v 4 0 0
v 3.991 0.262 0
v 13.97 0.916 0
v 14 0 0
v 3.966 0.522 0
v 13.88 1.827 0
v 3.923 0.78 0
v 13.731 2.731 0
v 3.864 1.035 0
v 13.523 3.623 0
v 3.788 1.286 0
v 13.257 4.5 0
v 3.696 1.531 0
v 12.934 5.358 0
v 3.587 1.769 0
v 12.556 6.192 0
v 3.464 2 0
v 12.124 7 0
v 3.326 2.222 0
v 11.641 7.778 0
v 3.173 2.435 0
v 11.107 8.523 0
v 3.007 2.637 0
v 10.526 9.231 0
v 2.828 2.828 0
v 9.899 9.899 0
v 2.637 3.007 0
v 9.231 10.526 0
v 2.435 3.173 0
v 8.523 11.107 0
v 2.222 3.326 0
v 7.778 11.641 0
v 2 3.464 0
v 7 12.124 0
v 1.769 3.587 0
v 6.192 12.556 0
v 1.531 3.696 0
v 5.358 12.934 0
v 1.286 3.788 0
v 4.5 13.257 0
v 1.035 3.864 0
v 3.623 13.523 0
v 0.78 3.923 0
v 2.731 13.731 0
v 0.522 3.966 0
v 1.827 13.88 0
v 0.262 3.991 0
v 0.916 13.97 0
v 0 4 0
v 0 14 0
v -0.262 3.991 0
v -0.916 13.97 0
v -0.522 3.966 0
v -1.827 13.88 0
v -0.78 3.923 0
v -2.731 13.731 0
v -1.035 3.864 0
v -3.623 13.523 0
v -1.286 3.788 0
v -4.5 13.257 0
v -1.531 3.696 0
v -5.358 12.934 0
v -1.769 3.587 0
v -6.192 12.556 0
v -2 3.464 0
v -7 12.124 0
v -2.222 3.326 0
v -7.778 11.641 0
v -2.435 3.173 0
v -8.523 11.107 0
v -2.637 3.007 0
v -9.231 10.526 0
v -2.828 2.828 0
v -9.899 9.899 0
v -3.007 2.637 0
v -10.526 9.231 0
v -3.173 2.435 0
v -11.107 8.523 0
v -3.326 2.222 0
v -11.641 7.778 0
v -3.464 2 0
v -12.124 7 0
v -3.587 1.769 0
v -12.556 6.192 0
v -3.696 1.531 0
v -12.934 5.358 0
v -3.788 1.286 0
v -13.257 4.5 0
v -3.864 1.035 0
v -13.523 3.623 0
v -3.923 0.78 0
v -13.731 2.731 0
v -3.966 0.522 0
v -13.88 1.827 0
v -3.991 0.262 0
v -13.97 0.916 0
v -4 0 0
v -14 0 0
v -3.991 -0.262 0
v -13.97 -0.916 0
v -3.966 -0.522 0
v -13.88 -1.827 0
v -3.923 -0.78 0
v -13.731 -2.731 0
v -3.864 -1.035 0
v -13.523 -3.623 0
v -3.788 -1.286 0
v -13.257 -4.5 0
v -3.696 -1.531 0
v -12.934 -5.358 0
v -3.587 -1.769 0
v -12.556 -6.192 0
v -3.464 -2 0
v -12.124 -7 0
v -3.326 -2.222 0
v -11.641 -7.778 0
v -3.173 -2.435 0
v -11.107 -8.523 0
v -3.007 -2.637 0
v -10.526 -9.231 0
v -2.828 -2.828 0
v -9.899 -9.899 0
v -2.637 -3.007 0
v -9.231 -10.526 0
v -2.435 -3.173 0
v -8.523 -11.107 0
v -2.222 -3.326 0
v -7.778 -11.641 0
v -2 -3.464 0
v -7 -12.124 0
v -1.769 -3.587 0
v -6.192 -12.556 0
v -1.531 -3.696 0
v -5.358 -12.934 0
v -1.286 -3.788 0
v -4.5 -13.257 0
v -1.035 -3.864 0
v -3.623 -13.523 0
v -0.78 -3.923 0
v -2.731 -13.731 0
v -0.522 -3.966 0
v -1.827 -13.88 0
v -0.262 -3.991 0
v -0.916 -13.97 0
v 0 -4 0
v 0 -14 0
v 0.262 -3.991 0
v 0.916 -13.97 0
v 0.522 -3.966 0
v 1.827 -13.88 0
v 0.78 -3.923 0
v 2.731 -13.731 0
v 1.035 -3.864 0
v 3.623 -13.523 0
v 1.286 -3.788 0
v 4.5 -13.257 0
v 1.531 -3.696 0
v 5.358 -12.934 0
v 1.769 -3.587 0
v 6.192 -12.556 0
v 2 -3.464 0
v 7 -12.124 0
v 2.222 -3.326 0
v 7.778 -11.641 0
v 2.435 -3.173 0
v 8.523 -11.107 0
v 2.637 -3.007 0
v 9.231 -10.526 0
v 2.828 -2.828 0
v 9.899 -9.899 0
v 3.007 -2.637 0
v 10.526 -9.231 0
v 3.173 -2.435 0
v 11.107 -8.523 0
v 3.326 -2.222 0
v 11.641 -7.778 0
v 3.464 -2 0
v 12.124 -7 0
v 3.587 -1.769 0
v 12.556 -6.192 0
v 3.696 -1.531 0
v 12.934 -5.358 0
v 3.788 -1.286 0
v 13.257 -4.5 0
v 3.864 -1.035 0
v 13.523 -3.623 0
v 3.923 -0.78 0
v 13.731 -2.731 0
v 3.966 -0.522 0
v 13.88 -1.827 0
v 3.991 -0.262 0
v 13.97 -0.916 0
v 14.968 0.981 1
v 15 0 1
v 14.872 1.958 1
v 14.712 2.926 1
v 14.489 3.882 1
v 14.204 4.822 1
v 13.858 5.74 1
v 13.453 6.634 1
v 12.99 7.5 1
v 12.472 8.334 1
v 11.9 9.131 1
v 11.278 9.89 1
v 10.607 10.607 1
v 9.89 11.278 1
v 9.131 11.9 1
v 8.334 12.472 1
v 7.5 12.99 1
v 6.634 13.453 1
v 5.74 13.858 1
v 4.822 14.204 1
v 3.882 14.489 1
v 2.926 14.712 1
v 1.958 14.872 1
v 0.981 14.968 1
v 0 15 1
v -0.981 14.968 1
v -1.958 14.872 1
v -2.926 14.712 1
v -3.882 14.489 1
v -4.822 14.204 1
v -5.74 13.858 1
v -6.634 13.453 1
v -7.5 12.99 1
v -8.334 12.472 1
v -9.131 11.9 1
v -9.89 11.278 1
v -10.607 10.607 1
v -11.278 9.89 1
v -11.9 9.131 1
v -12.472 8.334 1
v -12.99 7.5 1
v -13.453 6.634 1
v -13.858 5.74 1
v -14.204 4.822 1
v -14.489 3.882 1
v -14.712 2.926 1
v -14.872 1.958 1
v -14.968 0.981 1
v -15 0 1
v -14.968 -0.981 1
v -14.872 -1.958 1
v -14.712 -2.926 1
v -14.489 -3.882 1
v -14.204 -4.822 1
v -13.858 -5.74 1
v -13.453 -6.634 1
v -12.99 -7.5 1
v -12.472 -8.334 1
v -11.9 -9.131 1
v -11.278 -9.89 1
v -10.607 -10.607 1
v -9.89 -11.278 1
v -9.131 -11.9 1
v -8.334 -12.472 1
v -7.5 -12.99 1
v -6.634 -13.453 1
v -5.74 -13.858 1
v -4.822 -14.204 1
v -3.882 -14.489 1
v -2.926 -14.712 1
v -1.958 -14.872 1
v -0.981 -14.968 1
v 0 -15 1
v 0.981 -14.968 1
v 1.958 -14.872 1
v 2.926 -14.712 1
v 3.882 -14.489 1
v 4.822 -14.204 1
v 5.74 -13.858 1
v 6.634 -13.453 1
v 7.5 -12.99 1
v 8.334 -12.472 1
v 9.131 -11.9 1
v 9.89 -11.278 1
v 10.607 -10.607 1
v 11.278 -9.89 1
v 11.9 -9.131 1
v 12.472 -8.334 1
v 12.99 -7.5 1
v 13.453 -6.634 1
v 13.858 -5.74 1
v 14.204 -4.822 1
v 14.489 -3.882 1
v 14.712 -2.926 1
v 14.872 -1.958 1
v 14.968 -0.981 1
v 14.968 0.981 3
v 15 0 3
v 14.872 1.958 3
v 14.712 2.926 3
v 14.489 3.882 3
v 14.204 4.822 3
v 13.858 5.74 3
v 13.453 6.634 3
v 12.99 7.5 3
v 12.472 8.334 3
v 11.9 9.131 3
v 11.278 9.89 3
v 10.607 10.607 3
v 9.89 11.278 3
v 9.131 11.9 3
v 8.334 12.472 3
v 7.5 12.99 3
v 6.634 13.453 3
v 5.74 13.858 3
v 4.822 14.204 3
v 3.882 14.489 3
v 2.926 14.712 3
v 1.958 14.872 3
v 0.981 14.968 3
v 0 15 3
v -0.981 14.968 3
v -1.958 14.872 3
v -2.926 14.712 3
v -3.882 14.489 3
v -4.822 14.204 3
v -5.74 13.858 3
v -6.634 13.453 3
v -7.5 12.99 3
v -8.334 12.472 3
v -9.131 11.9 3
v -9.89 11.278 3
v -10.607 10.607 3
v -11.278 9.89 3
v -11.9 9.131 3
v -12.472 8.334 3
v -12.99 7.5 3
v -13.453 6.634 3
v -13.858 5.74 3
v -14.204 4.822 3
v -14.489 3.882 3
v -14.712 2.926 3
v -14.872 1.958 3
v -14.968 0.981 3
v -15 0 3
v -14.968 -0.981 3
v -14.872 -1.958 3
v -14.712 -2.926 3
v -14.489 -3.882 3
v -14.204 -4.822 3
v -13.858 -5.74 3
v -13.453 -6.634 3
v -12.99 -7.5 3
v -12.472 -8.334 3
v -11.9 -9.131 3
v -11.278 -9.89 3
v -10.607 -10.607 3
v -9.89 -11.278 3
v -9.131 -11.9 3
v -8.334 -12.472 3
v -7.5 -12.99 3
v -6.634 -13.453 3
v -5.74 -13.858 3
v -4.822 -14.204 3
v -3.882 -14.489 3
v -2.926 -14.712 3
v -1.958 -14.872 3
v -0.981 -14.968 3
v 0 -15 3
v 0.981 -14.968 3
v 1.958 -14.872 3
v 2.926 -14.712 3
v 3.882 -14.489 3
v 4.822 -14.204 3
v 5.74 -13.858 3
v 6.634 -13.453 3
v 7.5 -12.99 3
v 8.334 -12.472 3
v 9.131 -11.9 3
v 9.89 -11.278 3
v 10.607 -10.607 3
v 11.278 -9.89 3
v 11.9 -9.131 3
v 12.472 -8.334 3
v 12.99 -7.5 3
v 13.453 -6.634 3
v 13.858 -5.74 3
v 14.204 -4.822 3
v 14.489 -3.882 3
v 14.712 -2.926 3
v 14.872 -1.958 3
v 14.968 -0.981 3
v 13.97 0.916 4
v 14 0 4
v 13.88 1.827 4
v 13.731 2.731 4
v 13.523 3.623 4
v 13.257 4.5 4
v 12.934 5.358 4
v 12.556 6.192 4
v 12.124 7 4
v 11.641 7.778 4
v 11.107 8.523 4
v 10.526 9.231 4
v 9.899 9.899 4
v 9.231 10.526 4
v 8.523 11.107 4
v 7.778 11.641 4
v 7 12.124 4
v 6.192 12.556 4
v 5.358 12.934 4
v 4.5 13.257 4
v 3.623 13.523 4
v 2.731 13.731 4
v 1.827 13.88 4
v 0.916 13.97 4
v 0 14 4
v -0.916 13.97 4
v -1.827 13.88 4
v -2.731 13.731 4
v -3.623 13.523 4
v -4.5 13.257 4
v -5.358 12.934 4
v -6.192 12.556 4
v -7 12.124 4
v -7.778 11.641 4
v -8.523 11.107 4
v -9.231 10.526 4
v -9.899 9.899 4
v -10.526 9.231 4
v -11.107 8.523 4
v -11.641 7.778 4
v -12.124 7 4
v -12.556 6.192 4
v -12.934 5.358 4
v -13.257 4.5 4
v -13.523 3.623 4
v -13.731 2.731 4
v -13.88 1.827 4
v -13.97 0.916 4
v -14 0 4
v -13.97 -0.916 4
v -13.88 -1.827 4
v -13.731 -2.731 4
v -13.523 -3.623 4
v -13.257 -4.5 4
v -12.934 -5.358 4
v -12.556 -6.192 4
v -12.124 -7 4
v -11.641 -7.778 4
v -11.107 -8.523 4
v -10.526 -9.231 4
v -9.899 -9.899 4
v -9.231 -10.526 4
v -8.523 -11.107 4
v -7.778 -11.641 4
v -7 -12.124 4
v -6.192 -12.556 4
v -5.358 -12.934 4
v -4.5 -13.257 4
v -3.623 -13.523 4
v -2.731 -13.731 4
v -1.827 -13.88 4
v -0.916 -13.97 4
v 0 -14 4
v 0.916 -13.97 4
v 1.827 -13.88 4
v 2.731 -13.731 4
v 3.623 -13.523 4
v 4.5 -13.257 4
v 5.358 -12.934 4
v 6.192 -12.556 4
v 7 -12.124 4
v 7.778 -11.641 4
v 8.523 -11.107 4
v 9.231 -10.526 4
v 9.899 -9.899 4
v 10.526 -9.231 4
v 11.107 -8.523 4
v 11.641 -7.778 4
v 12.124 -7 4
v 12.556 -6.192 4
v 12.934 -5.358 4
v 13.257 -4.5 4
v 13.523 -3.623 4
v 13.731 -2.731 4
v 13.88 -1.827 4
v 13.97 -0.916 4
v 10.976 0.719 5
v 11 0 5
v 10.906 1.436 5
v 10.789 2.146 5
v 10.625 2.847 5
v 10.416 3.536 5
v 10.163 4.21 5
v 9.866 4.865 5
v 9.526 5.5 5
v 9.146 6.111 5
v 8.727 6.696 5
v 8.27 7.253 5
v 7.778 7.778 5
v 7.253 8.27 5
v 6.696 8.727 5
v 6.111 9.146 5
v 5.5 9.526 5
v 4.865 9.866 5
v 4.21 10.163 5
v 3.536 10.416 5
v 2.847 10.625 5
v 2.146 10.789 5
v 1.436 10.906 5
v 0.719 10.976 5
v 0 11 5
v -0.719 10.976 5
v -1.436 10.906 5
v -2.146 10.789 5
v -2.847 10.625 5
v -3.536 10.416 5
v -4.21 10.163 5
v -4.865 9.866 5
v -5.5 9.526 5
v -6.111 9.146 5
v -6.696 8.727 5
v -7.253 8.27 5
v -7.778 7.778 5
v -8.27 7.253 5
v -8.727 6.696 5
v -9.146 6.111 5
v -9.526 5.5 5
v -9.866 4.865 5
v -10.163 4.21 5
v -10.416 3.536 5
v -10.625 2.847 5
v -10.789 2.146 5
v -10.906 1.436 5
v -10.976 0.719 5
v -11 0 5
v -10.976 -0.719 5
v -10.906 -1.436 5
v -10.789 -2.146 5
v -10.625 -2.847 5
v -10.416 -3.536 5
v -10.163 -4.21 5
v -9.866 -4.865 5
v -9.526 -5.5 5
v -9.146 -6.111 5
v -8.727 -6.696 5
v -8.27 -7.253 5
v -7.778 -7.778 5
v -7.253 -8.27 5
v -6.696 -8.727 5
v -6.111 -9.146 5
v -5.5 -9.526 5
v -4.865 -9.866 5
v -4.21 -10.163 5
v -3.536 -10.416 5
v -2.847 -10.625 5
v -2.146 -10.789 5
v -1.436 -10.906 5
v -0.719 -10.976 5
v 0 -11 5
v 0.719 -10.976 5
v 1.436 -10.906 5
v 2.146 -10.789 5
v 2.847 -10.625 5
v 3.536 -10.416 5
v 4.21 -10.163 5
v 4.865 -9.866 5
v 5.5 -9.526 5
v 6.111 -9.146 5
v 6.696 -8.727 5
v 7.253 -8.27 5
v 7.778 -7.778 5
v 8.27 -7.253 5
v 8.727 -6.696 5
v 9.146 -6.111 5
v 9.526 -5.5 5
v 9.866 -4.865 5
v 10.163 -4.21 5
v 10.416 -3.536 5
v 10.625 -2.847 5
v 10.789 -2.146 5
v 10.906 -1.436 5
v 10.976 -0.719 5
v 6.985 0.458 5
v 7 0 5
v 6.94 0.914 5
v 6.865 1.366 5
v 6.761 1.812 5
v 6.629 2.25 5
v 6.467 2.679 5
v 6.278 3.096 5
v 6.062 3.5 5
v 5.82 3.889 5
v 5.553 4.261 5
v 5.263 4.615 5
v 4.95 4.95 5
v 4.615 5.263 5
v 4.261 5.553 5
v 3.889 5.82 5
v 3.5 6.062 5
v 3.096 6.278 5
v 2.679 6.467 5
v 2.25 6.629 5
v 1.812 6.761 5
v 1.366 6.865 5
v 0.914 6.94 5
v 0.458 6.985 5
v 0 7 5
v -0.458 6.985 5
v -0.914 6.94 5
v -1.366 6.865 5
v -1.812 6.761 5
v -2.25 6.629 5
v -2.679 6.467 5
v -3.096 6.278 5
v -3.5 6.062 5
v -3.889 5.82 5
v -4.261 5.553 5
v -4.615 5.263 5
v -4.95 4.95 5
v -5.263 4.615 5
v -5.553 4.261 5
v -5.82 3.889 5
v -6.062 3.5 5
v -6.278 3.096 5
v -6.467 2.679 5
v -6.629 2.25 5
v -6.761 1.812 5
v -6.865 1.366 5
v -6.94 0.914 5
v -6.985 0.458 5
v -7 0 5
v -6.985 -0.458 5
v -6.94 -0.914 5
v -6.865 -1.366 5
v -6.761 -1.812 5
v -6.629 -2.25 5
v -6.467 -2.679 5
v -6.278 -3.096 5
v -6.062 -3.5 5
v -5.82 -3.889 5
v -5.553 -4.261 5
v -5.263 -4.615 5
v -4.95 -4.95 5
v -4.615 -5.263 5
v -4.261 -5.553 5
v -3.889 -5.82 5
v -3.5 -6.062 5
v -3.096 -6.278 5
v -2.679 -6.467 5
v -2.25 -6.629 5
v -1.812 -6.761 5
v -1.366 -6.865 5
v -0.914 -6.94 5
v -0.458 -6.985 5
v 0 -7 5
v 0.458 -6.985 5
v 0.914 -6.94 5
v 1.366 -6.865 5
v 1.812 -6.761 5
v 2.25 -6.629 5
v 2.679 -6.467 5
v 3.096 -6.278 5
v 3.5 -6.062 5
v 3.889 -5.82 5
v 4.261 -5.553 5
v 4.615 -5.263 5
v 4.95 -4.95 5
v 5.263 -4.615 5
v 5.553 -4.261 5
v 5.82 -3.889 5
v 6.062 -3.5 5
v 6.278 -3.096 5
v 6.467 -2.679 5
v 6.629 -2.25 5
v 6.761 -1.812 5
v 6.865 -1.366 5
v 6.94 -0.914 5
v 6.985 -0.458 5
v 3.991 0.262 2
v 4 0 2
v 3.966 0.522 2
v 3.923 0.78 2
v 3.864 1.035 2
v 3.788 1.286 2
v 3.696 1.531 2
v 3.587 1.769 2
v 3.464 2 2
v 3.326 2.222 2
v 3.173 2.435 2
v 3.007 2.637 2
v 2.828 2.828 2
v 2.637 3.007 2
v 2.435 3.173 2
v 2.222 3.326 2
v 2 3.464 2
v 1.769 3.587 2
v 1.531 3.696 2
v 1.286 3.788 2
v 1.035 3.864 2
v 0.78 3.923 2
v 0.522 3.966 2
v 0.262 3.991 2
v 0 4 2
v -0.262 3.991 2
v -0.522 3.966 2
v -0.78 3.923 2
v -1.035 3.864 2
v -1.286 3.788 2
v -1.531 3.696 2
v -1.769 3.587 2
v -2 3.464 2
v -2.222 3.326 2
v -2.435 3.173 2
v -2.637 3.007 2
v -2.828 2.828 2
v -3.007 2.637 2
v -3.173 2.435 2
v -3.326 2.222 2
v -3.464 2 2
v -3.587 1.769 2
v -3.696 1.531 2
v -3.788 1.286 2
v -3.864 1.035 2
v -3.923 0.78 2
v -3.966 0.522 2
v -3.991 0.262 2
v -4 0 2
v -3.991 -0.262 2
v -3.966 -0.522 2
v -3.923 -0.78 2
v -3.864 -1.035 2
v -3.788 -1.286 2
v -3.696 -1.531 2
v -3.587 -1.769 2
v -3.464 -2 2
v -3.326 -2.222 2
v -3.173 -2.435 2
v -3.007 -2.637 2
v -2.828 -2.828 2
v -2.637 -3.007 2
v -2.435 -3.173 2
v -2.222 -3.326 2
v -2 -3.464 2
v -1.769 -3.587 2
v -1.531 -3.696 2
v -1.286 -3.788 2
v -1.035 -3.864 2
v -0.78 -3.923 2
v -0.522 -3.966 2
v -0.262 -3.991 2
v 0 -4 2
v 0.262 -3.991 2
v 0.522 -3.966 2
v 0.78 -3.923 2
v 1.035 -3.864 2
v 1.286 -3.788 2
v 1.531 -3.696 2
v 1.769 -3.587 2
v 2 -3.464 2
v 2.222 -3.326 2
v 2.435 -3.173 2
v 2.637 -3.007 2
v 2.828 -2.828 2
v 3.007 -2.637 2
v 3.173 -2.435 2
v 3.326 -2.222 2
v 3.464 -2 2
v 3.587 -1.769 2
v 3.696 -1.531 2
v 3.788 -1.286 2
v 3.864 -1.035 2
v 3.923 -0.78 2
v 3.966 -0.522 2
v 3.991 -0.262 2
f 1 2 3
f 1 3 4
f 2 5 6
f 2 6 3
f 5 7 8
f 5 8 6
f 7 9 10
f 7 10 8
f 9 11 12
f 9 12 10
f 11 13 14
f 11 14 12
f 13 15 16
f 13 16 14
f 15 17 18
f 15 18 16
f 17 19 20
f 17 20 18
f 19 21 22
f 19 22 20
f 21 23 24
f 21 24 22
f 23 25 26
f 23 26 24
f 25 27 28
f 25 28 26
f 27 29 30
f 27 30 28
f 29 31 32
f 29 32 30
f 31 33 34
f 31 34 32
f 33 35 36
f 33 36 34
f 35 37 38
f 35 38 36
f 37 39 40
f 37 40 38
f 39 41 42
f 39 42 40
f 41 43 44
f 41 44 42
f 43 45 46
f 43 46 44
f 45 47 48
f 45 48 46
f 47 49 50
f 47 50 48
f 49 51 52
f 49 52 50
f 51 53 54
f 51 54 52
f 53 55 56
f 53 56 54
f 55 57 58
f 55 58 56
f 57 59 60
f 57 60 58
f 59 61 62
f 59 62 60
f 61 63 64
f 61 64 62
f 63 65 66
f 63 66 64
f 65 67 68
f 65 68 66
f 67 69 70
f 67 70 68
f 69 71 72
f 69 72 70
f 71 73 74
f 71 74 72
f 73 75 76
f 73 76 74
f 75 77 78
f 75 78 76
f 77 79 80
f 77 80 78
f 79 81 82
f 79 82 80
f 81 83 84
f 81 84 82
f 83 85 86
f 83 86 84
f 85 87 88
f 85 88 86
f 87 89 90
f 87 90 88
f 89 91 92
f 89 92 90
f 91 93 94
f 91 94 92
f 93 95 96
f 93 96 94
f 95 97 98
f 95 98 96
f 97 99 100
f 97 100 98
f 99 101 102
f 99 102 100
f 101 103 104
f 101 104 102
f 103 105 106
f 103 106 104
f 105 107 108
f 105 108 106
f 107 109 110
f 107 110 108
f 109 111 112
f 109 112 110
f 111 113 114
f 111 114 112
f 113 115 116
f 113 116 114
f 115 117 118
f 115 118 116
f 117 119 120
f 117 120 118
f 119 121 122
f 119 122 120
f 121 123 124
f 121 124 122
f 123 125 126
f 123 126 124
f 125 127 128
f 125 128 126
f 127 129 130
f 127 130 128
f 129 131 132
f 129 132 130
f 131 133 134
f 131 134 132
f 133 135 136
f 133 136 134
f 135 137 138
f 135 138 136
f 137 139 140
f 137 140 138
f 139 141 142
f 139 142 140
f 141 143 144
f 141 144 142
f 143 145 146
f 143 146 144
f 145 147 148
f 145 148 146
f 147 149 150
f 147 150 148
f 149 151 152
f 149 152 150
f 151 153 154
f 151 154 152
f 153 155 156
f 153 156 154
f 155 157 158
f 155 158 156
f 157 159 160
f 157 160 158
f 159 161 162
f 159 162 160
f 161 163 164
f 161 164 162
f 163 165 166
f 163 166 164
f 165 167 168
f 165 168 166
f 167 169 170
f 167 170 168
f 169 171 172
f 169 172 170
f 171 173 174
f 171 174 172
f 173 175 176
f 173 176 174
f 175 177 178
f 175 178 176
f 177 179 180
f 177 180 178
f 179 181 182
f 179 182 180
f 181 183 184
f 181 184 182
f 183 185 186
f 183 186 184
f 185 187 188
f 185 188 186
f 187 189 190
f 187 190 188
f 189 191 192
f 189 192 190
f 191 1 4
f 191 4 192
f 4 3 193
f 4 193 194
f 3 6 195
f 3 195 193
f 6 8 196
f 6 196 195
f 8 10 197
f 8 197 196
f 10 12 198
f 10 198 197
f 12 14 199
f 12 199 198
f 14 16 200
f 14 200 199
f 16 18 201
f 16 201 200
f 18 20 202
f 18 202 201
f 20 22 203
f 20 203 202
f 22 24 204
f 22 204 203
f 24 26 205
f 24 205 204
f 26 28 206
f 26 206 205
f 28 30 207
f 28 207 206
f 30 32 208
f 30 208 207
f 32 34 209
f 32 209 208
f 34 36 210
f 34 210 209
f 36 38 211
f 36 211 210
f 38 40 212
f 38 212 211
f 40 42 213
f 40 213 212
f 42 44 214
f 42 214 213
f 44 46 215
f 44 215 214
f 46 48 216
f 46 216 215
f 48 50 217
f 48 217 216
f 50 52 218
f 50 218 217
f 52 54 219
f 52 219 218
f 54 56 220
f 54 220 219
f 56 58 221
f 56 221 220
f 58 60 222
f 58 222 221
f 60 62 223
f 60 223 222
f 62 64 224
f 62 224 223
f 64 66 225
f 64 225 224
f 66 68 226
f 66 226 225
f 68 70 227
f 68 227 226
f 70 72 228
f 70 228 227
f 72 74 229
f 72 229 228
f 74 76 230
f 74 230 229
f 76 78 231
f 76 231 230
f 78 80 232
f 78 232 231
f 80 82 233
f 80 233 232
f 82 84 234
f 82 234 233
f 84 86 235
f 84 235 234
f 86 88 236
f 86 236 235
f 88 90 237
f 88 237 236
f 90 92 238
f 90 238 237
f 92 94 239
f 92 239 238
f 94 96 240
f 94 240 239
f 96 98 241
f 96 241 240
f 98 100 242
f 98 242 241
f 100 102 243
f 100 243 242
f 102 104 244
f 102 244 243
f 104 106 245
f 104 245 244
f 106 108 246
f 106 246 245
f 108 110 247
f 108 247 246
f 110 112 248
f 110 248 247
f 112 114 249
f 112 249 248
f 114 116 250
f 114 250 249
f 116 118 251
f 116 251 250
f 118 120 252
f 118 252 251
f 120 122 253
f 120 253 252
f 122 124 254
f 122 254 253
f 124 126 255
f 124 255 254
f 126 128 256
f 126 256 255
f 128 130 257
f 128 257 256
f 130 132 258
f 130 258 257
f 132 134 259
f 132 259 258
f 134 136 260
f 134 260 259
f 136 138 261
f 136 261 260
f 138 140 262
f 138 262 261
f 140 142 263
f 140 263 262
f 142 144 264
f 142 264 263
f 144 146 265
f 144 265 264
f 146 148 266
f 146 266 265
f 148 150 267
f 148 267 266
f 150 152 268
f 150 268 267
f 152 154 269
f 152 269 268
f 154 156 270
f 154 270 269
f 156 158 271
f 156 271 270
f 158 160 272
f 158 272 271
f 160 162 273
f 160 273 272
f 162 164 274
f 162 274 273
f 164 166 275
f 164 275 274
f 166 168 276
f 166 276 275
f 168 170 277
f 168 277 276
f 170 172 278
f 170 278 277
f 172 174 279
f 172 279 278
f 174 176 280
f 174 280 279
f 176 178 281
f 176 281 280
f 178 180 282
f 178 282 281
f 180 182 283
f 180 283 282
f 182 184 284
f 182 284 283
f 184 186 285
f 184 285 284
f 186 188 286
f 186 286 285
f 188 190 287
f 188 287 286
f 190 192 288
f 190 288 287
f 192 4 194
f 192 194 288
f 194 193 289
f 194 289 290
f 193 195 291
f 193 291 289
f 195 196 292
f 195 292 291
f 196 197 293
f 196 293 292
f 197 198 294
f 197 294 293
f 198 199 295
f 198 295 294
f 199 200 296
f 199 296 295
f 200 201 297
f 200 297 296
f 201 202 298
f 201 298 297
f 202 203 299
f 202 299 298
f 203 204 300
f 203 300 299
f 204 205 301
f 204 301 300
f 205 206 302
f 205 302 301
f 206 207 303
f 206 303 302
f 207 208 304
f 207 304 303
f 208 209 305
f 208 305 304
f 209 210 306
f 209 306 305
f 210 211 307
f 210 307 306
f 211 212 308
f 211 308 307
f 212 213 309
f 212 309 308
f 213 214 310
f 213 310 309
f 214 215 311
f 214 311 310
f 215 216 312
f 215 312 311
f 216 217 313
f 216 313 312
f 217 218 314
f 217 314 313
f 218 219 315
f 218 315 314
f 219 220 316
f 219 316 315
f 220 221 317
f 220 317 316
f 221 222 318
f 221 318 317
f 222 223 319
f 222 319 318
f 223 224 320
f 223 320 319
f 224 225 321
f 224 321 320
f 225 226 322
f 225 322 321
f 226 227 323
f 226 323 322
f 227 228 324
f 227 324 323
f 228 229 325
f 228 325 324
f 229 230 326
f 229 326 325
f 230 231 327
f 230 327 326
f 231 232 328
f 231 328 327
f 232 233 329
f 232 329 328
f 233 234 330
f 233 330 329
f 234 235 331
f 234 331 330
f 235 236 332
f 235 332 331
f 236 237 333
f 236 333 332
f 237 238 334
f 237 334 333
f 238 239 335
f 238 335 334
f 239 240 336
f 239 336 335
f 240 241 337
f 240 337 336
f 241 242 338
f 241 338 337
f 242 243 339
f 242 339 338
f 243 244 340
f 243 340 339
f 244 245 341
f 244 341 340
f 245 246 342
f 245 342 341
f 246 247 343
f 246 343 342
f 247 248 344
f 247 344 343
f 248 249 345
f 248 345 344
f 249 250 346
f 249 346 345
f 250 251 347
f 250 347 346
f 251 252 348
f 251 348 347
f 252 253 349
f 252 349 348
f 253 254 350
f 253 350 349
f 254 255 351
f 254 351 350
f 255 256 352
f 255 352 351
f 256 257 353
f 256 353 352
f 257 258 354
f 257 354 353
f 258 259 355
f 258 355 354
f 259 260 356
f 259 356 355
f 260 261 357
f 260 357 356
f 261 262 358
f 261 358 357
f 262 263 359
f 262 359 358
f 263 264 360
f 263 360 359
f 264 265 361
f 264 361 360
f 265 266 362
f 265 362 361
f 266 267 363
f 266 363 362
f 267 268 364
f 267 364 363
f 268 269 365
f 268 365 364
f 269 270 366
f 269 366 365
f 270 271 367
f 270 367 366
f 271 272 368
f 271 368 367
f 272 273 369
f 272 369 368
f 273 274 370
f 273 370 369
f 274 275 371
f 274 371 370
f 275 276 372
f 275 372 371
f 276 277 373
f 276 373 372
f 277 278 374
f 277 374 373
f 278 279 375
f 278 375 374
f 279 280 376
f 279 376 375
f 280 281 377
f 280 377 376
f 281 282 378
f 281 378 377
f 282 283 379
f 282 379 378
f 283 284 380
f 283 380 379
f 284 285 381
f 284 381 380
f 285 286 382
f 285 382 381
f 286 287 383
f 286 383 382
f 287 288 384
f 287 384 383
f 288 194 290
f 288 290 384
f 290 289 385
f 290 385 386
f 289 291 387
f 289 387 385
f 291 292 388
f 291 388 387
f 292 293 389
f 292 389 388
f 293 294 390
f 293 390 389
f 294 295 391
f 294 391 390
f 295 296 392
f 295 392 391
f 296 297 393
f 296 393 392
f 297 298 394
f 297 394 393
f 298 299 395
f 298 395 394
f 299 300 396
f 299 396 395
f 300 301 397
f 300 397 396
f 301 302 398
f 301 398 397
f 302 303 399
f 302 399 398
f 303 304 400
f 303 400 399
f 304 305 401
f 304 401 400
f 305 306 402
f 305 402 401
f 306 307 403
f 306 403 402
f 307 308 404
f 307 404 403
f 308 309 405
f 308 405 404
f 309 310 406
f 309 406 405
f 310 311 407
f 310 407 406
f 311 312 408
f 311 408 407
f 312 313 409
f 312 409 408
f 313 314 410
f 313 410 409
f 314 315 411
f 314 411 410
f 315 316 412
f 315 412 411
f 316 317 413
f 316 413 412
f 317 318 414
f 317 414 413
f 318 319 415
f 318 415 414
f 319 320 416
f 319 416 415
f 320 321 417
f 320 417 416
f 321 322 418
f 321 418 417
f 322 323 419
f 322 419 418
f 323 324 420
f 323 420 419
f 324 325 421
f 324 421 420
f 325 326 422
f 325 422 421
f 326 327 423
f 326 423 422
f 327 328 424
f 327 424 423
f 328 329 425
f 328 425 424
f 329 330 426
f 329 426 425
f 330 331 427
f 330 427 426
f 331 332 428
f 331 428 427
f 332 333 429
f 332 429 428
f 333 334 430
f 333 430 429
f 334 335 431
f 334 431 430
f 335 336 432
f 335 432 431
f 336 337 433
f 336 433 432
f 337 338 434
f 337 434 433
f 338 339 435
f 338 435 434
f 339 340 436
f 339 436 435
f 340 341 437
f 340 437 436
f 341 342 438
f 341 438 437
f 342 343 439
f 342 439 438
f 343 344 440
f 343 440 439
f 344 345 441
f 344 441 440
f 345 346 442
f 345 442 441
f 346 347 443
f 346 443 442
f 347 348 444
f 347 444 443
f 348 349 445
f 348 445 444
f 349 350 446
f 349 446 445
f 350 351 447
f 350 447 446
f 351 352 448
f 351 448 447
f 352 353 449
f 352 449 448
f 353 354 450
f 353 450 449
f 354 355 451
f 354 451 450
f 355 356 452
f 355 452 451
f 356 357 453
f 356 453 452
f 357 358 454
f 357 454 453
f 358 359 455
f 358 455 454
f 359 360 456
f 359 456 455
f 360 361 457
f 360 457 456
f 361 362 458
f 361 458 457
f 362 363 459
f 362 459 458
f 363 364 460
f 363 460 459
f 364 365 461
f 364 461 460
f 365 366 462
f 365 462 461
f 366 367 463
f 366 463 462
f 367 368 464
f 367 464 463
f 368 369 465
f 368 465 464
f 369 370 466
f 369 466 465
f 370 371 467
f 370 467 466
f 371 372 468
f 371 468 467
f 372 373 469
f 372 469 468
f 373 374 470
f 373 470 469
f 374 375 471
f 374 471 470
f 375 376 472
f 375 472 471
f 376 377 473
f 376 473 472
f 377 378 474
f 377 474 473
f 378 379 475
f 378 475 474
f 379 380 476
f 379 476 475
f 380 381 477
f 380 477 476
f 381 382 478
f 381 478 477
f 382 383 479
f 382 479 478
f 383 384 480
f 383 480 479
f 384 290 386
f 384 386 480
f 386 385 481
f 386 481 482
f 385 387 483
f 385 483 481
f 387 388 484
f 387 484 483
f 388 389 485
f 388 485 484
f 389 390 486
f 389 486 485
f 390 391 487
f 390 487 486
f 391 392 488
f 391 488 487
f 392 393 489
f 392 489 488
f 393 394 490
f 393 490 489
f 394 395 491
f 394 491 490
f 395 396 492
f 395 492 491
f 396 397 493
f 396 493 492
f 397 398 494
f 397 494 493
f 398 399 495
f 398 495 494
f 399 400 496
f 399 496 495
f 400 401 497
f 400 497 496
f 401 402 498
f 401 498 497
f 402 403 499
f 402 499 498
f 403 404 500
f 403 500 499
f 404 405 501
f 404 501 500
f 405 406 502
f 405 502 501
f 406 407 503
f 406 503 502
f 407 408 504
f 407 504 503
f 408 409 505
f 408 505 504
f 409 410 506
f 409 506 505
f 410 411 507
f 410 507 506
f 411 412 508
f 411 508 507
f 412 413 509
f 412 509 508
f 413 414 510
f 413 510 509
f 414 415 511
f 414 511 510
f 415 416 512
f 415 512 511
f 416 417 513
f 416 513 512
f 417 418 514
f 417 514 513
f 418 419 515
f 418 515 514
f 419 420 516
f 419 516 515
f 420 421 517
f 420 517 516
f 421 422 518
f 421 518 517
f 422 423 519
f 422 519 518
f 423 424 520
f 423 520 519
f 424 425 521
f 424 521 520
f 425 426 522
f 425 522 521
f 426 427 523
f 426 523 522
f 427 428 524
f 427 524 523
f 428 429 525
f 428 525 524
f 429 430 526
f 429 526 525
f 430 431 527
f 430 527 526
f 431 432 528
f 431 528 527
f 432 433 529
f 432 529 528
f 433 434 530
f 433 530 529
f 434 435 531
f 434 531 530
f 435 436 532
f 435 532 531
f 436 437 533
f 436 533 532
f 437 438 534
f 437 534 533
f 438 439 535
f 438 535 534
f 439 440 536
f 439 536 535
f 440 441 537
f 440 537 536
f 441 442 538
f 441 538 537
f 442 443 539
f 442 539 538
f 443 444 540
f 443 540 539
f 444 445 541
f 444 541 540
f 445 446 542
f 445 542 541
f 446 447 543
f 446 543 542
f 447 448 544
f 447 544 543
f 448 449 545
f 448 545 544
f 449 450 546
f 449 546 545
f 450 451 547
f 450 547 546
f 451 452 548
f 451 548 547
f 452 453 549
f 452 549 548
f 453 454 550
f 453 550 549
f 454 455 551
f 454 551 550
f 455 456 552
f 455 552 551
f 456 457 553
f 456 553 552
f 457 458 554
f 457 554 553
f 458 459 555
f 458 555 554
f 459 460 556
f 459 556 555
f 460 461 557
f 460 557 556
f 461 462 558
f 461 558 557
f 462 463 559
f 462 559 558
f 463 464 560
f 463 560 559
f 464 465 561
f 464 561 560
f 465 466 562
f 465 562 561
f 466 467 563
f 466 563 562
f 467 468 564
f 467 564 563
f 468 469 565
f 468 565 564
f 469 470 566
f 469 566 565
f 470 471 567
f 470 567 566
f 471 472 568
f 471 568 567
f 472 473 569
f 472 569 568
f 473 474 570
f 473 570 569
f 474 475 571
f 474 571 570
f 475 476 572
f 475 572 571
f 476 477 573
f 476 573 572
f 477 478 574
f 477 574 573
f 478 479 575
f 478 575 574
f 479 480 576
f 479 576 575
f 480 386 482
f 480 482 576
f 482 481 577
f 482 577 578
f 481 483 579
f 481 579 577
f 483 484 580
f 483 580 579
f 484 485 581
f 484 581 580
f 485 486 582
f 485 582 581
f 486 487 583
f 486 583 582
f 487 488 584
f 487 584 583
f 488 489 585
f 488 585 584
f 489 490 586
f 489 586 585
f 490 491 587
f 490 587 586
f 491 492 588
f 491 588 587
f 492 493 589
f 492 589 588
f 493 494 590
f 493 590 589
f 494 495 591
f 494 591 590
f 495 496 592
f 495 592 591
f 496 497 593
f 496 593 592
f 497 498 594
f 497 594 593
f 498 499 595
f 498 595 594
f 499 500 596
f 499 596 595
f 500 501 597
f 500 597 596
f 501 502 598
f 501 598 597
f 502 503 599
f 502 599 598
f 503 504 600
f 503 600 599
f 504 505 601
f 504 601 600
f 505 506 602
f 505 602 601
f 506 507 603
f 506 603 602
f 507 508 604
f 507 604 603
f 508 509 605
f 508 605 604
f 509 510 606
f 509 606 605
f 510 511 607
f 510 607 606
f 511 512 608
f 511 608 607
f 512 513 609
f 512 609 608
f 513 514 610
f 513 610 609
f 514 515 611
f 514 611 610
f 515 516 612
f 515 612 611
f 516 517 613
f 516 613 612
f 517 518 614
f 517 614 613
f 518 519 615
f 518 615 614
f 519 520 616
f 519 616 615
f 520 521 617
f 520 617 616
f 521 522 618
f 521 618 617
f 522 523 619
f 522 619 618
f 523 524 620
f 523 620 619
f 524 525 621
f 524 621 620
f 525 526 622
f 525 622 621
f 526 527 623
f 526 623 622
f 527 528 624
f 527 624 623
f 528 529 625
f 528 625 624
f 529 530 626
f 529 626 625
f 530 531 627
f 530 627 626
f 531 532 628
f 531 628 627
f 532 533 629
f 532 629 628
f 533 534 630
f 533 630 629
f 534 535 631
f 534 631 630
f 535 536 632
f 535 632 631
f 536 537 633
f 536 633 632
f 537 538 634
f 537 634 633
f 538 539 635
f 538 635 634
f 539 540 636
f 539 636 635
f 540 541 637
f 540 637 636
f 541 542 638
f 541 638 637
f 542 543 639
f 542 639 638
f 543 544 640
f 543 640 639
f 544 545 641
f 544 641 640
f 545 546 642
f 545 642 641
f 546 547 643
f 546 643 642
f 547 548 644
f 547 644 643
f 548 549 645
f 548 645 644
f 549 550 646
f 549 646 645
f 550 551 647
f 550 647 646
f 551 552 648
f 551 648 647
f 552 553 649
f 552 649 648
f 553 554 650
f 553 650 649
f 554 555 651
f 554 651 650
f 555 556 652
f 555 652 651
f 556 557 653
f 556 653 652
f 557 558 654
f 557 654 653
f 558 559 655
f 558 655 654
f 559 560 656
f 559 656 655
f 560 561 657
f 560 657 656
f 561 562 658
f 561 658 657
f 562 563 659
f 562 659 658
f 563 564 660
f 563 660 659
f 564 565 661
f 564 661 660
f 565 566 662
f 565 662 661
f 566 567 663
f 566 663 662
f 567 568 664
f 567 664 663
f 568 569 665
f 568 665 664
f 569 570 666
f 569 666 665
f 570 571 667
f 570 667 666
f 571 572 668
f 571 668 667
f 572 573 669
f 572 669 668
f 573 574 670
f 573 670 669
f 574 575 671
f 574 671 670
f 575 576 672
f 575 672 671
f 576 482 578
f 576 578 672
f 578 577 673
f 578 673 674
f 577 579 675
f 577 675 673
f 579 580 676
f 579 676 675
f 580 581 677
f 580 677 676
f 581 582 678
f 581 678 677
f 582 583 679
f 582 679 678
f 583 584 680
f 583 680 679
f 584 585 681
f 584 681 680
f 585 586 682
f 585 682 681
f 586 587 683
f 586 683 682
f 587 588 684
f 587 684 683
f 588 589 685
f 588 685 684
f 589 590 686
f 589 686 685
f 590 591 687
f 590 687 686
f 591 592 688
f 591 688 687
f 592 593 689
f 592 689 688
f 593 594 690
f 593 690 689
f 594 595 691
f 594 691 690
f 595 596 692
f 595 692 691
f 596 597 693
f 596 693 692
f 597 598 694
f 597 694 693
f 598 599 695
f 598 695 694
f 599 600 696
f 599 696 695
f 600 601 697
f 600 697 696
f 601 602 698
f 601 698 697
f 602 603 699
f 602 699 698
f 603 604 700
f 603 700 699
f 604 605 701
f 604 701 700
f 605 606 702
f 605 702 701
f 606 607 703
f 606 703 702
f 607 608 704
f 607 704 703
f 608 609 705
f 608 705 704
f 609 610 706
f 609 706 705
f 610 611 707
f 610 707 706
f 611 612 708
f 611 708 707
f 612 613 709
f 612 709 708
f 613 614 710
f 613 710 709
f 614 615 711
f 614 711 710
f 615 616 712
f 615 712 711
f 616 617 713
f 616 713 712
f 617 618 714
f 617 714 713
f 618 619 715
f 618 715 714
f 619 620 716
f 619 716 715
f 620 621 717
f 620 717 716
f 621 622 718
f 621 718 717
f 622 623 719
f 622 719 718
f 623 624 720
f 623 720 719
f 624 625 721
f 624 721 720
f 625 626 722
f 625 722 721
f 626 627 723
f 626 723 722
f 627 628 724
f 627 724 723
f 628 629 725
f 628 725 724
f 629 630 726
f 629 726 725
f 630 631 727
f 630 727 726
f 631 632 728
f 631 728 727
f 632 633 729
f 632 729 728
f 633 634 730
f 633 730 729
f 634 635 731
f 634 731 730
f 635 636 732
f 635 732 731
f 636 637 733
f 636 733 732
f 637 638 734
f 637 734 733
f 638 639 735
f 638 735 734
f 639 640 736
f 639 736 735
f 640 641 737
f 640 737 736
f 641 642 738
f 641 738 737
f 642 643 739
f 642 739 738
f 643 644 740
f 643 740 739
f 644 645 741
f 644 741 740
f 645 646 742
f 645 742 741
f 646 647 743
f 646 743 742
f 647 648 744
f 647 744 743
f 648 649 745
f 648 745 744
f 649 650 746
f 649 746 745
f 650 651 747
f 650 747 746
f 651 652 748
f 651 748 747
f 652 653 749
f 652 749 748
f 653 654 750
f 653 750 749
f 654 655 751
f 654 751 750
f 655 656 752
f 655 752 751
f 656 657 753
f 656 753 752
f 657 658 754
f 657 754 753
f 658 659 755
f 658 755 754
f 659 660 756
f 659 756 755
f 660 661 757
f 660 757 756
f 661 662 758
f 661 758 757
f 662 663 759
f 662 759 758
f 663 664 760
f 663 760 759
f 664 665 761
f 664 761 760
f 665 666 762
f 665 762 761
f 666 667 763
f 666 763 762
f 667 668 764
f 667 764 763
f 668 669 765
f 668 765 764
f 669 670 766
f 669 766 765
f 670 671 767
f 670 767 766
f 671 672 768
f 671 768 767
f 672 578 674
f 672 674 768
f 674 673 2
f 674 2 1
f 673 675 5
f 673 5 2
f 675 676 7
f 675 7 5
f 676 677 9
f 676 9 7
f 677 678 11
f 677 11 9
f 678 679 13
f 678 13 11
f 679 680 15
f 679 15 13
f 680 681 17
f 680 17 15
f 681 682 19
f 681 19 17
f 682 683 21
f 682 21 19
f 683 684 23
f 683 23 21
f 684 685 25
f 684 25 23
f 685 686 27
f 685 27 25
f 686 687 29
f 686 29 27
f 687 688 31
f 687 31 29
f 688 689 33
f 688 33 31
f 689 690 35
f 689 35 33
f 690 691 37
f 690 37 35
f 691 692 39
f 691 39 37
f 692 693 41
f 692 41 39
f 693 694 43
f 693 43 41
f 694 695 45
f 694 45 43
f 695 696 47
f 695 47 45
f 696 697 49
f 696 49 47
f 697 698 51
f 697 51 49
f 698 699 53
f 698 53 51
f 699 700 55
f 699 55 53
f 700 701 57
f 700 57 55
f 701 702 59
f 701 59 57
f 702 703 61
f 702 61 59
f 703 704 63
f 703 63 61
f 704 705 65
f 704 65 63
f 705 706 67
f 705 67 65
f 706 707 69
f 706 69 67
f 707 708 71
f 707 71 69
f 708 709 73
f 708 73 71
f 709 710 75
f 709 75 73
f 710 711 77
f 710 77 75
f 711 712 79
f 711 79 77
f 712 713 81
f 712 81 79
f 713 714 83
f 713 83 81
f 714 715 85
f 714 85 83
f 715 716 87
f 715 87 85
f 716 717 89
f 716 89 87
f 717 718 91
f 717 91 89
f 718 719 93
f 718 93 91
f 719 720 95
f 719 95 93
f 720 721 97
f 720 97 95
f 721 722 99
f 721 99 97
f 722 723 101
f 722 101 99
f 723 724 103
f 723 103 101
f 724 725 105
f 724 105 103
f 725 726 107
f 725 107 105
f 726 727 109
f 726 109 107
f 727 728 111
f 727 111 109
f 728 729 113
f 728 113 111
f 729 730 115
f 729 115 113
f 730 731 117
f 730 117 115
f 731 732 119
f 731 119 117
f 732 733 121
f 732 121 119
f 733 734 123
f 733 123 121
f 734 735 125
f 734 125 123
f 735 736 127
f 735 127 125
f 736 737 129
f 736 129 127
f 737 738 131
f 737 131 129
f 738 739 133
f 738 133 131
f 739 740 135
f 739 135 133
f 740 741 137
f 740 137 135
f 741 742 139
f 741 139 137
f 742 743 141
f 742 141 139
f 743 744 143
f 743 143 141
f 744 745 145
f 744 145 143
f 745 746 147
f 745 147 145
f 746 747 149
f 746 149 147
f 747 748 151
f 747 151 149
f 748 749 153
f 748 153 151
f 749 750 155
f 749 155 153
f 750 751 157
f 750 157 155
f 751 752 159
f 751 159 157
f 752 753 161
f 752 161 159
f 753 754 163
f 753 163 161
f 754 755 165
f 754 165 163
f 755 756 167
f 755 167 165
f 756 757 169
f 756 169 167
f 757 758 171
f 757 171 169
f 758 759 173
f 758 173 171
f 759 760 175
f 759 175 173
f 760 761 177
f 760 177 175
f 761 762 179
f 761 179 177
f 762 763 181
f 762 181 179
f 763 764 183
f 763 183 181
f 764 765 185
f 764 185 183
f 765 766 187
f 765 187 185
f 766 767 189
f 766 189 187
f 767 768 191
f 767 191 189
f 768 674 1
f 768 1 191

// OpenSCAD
// Original MechIntel educational model. CC0-1.0. Units: mm.
// Not a standardized or load-rated component.
$fn=96;
// Section points: [radius, height], mm. Edit to change the profile.
section=[[4, 0], [14, 0], [15, 1], [15, 3], [14, 4], [11, 5], [7, 5], [4, 2]];
rotate_extrude($fn=96) polygon(points=section);
